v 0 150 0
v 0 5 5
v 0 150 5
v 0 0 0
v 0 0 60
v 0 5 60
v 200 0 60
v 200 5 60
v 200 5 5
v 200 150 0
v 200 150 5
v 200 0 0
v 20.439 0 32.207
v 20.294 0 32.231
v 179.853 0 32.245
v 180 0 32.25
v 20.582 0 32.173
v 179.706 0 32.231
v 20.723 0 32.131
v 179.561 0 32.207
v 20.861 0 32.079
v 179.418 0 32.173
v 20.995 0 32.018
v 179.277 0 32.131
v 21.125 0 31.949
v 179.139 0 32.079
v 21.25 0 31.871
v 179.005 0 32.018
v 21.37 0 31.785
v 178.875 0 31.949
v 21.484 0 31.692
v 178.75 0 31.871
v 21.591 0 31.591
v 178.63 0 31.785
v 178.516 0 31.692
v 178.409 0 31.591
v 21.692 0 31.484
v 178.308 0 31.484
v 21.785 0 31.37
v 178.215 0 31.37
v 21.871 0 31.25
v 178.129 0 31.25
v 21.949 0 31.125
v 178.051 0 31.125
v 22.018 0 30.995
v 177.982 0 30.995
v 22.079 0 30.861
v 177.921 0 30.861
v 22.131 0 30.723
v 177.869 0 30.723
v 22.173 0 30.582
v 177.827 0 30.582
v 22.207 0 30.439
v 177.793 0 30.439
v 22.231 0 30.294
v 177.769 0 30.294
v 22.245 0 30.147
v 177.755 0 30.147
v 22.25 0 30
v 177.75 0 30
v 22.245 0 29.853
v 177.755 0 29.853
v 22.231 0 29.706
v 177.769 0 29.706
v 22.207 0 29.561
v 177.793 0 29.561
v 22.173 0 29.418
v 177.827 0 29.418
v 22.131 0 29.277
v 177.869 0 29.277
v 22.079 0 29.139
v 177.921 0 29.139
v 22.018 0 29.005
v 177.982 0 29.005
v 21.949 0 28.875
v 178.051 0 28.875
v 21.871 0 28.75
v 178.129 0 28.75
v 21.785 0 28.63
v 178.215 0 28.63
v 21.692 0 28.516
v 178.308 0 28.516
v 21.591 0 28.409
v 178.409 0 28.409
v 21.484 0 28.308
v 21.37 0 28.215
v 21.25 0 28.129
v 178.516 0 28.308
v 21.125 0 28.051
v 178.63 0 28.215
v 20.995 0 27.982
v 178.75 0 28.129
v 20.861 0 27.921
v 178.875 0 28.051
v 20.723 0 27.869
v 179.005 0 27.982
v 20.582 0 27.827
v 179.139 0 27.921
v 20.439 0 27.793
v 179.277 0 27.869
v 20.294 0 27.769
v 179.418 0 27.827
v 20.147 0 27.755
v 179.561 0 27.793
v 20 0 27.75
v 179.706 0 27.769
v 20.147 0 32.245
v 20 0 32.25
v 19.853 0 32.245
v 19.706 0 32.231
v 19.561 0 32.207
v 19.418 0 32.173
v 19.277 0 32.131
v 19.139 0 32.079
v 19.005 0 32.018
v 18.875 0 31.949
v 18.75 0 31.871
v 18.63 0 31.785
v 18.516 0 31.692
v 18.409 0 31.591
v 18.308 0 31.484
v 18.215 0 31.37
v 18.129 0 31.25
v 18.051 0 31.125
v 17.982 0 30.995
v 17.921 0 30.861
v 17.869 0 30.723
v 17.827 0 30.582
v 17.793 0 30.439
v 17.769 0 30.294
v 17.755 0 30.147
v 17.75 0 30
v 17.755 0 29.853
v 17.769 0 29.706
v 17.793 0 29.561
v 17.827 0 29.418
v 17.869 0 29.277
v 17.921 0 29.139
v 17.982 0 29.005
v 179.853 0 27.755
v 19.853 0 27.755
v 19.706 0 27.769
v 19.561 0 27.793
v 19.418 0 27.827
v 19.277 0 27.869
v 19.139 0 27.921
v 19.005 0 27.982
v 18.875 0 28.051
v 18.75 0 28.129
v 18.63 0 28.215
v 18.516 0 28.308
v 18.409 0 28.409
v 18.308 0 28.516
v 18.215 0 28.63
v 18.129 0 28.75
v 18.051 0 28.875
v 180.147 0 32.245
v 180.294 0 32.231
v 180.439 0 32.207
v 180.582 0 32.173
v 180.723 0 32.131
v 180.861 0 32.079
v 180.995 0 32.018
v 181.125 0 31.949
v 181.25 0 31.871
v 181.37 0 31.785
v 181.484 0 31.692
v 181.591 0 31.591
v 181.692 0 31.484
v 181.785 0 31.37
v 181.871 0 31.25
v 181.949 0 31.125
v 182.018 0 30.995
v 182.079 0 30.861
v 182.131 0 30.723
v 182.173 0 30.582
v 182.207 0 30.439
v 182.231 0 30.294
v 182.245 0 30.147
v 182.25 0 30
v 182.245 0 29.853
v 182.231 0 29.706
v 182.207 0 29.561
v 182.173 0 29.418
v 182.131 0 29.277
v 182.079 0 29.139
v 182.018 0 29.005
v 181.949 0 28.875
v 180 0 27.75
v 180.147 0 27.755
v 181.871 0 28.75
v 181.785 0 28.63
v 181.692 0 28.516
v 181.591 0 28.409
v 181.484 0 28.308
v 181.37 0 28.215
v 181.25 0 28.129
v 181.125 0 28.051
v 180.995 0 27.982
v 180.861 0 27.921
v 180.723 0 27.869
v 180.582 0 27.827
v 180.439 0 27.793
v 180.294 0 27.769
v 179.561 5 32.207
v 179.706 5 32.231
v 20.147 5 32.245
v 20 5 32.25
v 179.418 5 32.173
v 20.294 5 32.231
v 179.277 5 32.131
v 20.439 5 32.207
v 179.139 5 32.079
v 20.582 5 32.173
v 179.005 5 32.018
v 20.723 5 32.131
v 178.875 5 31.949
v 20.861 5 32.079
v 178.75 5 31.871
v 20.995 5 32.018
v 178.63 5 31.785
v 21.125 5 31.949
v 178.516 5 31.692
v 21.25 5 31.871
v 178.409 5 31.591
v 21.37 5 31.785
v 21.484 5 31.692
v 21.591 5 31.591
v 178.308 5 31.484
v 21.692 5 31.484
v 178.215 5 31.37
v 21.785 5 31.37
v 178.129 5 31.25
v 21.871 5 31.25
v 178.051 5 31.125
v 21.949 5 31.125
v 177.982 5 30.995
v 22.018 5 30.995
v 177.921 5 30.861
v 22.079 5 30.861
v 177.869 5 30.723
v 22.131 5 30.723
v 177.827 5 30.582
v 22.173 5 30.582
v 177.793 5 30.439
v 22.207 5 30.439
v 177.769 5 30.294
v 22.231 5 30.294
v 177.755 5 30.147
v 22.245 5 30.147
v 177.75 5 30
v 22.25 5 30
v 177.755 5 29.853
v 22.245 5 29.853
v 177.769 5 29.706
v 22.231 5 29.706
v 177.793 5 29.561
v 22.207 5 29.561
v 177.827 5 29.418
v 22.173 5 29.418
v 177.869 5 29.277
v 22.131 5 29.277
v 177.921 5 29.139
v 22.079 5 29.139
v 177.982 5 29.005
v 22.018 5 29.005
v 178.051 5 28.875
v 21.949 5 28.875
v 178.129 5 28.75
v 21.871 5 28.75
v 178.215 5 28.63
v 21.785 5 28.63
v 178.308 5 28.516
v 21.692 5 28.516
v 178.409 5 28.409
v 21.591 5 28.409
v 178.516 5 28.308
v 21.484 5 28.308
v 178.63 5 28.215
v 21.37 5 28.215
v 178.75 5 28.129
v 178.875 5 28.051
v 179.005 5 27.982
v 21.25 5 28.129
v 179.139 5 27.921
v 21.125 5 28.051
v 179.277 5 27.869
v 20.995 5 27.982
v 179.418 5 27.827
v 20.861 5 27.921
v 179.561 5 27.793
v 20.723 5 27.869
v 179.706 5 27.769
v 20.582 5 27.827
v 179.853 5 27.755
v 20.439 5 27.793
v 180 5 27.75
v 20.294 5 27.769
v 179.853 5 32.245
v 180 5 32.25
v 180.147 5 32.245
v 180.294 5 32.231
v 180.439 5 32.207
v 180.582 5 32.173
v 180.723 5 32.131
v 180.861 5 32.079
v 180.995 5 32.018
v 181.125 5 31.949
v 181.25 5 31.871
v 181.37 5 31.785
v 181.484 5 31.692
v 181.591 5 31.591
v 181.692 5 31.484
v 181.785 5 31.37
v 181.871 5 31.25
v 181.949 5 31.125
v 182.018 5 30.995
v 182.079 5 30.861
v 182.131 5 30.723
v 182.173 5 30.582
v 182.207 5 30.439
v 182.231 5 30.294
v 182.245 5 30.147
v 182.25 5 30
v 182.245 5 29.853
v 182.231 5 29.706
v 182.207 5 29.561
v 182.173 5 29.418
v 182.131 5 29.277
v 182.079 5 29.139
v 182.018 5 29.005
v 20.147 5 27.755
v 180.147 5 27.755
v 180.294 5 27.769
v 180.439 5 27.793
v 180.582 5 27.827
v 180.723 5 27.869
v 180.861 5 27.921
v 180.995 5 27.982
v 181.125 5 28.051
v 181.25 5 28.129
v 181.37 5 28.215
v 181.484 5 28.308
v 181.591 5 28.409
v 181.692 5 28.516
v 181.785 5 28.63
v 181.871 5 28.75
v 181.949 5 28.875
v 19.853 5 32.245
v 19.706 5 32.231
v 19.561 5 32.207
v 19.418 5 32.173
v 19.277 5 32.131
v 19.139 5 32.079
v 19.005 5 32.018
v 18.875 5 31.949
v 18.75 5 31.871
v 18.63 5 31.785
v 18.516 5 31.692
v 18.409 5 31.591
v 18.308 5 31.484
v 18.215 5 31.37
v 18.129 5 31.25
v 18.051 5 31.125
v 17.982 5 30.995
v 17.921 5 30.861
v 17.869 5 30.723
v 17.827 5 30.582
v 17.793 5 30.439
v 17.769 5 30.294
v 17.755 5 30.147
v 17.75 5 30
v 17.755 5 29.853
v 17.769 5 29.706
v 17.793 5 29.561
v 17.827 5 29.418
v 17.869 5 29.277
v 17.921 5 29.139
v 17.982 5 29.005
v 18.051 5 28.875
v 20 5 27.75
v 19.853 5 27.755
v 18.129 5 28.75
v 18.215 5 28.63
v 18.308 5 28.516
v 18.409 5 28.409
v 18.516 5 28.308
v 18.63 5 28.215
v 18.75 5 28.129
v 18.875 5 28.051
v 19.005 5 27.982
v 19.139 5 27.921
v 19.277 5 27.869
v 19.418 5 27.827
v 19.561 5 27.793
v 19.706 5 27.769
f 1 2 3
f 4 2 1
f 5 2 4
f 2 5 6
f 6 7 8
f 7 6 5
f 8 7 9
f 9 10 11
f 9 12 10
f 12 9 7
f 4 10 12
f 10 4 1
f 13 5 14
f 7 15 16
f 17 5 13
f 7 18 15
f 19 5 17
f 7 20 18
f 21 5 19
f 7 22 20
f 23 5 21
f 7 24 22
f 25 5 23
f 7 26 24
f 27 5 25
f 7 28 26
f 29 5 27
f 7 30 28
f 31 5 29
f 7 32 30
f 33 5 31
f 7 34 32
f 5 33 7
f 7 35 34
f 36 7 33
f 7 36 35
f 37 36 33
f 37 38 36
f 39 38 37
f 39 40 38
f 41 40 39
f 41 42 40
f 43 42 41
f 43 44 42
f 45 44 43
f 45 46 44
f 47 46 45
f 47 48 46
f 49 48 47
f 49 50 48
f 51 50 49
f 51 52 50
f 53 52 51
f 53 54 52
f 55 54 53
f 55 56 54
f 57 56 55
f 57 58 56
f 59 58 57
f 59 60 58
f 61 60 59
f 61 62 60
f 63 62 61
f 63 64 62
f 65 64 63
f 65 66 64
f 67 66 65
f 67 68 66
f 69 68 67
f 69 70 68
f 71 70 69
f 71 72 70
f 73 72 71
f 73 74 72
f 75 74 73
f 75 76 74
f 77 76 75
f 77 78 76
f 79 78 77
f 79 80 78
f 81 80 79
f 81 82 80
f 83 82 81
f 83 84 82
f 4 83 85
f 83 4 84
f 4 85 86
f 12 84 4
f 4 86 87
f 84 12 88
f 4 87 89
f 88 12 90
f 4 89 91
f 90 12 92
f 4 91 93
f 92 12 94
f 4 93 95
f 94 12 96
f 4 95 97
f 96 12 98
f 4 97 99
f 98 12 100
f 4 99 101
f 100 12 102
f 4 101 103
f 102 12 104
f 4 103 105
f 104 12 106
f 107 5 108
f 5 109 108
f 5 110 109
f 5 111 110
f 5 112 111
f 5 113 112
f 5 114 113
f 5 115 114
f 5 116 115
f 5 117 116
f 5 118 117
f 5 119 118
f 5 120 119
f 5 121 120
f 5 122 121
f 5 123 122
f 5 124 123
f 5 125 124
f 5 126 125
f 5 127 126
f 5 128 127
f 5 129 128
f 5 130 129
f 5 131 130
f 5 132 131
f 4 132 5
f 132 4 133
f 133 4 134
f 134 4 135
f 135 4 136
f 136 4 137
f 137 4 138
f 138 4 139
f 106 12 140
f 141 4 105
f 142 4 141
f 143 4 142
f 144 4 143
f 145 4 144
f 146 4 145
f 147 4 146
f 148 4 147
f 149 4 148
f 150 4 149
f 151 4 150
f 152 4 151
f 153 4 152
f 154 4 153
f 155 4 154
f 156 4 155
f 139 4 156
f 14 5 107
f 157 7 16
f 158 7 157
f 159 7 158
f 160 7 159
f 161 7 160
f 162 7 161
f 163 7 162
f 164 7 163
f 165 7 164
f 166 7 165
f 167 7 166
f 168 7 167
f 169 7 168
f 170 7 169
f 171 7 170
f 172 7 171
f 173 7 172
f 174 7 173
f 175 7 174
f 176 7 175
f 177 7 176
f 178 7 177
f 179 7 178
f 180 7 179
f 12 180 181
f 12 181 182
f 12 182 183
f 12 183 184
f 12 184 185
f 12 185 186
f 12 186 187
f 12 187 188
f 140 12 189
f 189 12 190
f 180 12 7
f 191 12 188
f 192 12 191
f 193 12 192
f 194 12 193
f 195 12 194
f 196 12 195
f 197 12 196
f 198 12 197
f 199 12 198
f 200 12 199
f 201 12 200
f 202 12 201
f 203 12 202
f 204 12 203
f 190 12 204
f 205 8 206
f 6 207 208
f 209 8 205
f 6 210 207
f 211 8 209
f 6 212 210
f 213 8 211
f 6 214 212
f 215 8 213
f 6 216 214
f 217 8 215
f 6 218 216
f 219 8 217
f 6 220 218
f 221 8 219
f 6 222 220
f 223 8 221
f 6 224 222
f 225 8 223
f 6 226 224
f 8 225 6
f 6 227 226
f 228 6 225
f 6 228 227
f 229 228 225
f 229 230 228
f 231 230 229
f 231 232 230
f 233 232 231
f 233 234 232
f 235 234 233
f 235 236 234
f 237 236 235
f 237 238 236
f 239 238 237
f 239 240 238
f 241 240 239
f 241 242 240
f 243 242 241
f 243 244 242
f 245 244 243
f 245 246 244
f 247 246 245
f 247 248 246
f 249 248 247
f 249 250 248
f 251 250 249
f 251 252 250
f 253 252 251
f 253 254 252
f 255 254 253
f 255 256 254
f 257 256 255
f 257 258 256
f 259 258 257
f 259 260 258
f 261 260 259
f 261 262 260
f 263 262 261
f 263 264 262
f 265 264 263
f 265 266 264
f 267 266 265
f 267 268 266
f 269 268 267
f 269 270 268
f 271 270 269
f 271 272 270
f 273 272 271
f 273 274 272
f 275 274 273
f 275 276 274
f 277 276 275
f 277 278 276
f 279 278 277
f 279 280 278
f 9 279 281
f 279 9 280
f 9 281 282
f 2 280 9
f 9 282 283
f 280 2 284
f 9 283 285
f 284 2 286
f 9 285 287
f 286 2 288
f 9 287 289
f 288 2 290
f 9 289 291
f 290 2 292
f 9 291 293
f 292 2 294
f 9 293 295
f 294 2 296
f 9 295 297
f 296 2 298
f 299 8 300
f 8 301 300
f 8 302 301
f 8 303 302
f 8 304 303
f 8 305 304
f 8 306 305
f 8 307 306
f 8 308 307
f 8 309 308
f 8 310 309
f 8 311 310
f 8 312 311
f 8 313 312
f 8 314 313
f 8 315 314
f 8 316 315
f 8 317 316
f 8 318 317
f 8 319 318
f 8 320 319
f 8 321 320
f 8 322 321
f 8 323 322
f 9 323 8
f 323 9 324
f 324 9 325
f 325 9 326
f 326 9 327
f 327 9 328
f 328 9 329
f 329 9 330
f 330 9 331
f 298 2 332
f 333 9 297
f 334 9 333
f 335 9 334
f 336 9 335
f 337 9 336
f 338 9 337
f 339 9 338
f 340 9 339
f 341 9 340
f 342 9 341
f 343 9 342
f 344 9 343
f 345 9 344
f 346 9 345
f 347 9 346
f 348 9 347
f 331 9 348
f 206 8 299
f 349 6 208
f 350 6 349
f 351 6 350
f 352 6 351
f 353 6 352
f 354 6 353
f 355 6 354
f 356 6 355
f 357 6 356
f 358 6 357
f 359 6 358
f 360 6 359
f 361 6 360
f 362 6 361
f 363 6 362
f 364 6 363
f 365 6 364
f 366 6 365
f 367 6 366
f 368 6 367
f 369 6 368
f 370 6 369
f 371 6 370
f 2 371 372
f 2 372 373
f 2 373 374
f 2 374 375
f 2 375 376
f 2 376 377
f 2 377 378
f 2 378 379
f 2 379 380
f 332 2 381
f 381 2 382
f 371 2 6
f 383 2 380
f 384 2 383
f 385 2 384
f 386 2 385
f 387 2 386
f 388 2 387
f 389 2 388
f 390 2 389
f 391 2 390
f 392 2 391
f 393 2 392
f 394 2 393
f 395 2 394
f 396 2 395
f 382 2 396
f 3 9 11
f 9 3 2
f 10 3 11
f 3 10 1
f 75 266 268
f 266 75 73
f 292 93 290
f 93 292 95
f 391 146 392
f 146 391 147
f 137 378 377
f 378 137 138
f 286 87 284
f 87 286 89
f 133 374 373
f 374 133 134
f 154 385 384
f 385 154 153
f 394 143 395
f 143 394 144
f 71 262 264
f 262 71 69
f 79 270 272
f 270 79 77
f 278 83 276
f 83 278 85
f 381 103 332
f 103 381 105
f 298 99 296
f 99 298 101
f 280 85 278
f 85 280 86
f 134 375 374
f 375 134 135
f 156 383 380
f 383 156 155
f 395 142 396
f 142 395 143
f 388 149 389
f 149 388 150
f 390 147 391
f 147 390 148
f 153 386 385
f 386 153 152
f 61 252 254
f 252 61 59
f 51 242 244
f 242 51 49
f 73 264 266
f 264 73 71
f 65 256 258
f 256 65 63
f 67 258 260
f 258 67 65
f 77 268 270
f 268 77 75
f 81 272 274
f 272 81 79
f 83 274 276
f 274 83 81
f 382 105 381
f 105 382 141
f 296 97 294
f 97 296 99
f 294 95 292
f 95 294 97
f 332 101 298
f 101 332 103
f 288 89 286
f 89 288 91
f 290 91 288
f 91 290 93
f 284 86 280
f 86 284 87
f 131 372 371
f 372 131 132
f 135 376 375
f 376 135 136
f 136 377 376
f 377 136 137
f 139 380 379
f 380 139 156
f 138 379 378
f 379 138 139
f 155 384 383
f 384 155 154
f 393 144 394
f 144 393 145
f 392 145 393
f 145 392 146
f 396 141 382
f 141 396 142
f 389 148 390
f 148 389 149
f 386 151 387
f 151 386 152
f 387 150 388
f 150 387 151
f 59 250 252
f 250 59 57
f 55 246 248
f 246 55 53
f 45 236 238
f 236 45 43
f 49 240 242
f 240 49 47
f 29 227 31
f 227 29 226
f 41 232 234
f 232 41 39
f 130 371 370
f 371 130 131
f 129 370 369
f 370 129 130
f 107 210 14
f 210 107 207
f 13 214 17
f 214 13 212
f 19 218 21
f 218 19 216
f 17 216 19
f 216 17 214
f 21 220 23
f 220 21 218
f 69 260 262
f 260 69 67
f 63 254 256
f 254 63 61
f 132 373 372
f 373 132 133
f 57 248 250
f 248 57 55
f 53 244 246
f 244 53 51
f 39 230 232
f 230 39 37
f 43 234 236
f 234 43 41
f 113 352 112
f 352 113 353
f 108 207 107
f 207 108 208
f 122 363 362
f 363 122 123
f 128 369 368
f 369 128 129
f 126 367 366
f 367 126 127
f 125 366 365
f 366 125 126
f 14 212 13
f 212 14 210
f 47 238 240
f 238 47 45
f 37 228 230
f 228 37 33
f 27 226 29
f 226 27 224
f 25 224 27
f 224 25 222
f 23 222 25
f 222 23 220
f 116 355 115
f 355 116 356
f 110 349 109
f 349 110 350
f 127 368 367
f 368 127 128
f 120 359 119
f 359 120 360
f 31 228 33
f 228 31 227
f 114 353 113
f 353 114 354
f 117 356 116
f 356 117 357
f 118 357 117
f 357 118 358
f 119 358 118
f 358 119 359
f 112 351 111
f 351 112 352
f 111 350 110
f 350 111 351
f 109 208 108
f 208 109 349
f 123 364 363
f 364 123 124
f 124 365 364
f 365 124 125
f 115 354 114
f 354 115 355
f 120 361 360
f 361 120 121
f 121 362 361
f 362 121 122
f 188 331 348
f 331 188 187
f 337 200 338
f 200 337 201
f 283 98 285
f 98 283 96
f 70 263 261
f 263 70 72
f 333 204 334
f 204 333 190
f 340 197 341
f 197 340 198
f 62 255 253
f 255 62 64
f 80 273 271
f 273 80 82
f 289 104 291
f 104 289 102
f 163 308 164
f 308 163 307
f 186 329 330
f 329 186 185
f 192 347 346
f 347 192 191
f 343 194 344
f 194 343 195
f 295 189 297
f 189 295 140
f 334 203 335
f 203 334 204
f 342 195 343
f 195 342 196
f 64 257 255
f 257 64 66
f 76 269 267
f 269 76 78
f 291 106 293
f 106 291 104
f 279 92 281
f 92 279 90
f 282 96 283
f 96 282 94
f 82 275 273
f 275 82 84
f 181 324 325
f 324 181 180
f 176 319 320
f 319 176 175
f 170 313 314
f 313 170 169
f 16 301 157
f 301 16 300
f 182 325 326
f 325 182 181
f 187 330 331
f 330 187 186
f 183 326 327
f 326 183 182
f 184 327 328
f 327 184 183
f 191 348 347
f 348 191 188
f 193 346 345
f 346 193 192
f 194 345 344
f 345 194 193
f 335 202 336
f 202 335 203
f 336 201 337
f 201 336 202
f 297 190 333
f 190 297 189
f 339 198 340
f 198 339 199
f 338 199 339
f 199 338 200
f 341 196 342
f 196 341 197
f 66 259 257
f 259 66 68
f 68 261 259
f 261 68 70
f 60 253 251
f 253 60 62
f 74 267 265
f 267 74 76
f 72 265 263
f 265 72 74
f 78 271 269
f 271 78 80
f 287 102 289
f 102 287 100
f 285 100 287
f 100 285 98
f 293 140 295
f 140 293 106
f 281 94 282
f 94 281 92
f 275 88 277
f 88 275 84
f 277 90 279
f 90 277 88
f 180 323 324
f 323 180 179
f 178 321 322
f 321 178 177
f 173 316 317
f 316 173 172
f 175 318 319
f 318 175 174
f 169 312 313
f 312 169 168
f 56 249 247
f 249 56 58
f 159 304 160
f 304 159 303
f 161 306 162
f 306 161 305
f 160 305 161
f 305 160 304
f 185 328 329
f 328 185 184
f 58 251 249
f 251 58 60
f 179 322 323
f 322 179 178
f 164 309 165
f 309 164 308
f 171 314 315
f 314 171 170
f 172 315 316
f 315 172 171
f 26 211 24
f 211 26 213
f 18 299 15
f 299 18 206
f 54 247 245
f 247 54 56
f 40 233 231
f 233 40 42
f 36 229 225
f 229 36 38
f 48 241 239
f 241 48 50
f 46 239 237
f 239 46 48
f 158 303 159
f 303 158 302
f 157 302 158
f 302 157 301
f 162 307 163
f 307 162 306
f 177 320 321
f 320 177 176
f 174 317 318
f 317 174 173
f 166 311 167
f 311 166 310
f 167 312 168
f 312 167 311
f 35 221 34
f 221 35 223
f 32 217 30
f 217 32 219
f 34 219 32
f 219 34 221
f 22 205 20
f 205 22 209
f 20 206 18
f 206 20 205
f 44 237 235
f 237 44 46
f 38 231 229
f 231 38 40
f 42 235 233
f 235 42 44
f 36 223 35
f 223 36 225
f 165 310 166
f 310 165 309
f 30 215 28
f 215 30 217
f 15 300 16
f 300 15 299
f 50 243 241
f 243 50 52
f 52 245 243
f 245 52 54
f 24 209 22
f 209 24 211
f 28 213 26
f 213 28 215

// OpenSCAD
// PolyForge template: shelf_bracket
// units: millimetres
// L-profile wall shelf: a vertical back plate (against the wall, with mounting
// holes) fused to a horizontal shelf plate, spanning the shelf width in X.
// Hole placement is expressed as fractions of shelf_width/back_height so it
// stays valid for any override of those dimensions.

/* [Primary dimensions] */
shelf_width = 200.0;   // X, length of the shelf
shelf_depth = 150.0;   // Y, how far the shelf sticks out from the wall
back_height = 60.0;   // Z, height of the vertical wall plate
thickness = 5;       // plate thickness

/* [Mounting holes, through the back plate] */
hole_diameter = 4.5;
hole_count = 2;
hole_margin_fraction = 0.1;   // end margin, as a fraction of shelf_width
hole_z_fraction = 0.5;             // hole row height, as a fraction of back_height
hole_margin = shelf_width * hole_margin_fraction;
hole_z = back_height * hole_z_fraction;

/* [Quality] */
$fn = $preview ? 32 : 96;
eps = 0.01;

assert(shelf_depth > thickness, "shelf_depth must exceed thickness");
assert(back_height > thickness, "back_height must exceed thickness");
assert(hole_count >= 1, "hole_count must be at least 1");
assert(hole_margin_fraction > 0 && hole_margin_fraction < 0.5, "hole_margin_fraction must be between 0 and 0.5");
assert(hole_z_fraction > 0 && hole_z_fraction < 1, "hole_z_fraction must be between 0 and 1");
assert(hole_diameter < thickness * 4, "hole_diameter looks implausibly large for this plate thickness");

module back_plate() {
    cube([shelf_width, thickness, back_height]);
}

module shelf_plate() {
    cube([shelf_width, shelf_depth, thickness]);
}

module mounting_holes() {
    step = (hole_count > 1) ? (shelf_width - 2 * hole_margin) / (hole_count - 1) : 0;
    for (i = [0 : hole_count - 1]) {
        x = hole_margin + i * step;
        translate([x, -eps, hole_z])
            rotate([-90, 0, 0])
                cylinder(h = thickness + 2 * eps, d = hole_diameter);
    }
}

difference() {
    union() {
        back_plate();
        shelf_plate();
    }
    mounting_holes();
}
